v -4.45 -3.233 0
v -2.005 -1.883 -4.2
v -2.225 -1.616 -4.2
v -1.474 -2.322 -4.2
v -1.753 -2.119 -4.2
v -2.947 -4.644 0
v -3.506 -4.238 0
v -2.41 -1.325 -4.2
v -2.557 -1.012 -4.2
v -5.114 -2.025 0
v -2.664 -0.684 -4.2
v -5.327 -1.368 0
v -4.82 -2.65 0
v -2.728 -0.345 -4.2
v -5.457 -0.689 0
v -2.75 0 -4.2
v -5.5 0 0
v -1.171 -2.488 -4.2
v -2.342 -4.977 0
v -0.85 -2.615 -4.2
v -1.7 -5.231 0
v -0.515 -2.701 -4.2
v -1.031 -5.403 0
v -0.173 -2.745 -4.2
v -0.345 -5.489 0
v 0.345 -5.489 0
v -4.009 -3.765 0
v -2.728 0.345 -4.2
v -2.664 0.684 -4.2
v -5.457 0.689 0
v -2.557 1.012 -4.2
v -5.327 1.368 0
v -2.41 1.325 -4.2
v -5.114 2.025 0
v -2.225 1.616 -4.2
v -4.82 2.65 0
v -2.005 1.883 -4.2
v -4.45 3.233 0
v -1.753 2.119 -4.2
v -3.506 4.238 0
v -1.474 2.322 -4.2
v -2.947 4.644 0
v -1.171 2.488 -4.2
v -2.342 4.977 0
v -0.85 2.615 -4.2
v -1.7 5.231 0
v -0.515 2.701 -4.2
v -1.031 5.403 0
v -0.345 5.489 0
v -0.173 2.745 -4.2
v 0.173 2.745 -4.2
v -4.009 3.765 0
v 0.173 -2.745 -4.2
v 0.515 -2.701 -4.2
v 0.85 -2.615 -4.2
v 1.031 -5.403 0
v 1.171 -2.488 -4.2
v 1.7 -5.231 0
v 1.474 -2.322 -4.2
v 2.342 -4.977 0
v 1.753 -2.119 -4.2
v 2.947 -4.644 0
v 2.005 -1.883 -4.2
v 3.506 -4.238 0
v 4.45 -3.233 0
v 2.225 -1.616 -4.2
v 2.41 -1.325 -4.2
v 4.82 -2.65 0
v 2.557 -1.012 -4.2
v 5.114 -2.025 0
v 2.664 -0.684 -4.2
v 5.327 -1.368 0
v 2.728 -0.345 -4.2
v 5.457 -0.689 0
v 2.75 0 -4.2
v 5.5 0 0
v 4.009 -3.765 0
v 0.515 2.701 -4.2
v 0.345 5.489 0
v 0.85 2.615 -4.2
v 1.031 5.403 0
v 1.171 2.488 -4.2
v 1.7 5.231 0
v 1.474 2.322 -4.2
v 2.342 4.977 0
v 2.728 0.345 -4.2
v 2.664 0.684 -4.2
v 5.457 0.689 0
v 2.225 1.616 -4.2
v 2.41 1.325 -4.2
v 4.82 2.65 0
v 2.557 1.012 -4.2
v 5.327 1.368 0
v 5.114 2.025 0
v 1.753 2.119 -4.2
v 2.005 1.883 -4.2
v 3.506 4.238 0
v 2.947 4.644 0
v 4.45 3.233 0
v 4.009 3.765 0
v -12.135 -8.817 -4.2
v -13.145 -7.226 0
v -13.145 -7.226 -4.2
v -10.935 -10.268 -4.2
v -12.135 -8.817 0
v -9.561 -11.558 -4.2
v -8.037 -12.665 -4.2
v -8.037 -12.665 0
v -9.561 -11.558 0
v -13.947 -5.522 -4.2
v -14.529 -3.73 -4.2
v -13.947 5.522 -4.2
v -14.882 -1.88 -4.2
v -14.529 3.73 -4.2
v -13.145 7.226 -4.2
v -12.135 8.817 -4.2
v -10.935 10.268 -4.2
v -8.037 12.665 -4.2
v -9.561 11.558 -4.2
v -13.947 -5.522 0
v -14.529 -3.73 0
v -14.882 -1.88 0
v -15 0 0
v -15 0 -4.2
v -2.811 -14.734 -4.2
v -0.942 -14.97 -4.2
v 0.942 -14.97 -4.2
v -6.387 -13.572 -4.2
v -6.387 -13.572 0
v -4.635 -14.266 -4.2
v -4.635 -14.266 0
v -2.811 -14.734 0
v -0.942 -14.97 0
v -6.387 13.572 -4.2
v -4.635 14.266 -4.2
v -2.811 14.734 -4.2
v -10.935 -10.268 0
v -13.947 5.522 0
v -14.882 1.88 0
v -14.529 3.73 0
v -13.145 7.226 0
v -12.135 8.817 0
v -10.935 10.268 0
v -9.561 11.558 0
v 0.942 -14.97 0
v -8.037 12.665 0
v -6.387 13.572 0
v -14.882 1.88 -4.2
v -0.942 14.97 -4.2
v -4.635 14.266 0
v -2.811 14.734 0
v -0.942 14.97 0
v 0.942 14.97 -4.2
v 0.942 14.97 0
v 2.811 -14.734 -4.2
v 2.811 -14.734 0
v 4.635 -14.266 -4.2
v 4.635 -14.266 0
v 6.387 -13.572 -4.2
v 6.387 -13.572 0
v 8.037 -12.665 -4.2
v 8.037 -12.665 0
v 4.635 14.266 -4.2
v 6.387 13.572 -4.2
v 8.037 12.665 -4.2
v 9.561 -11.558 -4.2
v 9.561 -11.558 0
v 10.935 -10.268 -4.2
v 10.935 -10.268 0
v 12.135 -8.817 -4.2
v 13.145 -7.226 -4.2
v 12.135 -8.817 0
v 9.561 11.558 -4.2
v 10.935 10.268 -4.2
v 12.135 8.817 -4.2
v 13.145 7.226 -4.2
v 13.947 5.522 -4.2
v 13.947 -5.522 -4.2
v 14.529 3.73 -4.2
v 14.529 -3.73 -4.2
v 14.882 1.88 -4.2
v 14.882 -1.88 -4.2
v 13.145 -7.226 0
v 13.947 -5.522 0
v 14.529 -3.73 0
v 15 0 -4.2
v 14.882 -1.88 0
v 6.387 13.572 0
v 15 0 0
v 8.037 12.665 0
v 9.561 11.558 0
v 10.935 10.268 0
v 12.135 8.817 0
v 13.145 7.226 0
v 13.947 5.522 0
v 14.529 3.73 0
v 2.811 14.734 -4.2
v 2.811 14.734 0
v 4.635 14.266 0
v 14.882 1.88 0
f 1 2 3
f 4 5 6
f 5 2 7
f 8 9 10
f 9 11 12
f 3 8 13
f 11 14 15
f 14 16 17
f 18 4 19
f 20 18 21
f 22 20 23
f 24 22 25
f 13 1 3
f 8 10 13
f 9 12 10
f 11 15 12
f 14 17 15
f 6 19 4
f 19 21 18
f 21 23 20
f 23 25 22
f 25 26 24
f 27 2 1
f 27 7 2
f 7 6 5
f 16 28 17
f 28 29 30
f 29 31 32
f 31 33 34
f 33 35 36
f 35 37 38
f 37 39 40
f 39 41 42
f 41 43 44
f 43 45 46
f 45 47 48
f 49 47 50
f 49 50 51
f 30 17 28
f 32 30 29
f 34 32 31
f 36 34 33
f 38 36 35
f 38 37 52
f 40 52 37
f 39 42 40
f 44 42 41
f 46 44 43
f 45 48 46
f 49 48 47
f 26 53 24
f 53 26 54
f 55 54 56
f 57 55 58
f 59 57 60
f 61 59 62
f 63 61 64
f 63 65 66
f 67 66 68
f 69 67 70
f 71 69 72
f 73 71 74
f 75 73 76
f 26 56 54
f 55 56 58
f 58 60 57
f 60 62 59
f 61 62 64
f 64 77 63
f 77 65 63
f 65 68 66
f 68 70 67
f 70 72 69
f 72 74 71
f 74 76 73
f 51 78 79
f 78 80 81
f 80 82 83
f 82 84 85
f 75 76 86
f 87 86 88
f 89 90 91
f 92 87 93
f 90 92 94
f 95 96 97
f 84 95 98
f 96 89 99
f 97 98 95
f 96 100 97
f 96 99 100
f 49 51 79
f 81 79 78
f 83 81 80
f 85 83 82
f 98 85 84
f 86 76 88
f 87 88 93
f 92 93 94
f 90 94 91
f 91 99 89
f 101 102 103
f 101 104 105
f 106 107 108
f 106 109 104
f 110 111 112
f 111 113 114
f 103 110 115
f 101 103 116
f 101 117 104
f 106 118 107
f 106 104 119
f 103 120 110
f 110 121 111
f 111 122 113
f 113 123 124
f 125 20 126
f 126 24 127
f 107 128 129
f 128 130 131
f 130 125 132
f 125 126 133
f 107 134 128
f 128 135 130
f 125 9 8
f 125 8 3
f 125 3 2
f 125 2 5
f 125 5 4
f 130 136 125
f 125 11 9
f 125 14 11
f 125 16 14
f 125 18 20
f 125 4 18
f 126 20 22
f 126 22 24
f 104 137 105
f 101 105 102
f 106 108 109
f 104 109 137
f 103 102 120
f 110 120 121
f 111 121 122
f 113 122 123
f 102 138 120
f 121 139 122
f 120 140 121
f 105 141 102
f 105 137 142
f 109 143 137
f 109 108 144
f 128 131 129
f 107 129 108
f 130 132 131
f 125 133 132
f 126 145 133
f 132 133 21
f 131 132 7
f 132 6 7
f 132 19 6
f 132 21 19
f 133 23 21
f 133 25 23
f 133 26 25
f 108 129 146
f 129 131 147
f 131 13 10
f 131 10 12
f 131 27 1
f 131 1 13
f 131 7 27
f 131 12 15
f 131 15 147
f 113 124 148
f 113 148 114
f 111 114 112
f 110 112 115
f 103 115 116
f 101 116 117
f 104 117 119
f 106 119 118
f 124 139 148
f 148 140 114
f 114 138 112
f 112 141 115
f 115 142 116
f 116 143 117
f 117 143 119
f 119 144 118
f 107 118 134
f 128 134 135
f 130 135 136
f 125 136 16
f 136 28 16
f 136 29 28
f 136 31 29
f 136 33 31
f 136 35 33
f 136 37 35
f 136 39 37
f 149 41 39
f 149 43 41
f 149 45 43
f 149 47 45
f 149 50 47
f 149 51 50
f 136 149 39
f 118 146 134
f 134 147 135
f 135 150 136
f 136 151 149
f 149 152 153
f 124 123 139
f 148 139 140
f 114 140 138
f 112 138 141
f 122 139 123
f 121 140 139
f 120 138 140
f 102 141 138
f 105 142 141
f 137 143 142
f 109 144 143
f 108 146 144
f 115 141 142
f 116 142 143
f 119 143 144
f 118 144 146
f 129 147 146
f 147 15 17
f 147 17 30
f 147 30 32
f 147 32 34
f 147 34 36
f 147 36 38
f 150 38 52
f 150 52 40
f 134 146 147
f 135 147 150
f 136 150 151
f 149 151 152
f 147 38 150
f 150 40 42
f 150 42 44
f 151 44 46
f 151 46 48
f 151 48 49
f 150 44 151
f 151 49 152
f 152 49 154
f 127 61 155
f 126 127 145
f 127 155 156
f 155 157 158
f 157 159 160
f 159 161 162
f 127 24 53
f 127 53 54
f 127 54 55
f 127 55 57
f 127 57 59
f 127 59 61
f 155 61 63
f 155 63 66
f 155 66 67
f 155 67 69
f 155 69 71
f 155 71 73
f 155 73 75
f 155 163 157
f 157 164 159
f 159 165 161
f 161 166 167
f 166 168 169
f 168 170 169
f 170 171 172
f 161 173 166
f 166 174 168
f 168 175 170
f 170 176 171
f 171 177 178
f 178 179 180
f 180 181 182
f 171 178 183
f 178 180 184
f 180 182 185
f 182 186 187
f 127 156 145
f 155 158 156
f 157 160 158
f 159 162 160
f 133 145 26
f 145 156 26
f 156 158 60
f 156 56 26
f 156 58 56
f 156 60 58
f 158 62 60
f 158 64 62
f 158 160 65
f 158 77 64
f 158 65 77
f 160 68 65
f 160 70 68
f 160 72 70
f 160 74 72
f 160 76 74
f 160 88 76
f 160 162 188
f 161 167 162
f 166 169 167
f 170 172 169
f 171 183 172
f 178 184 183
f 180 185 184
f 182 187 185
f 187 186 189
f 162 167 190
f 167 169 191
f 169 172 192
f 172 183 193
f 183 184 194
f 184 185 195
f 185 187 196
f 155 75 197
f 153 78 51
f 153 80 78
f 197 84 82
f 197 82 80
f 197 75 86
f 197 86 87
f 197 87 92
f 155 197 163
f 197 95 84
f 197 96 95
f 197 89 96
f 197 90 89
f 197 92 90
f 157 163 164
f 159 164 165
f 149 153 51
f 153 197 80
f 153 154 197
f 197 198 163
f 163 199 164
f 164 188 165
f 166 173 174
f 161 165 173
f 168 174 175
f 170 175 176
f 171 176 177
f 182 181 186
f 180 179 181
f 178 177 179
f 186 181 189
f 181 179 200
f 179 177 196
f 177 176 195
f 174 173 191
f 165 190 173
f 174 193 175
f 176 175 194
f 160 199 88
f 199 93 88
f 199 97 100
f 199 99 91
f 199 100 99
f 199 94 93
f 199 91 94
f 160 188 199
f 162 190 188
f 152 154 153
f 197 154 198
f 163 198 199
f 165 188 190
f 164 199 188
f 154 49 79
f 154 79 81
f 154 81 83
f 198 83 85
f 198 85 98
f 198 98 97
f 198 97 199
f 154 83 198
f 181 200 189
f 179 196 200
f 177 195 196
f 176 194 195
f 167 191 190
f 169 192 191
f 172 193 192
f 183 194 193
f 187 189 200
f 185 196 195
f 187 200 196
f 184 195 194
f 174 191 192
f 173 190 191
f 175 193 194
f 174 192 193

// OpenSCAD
$fn = 50;

difference() {
	union() {
		translate(v = [0, 0, -4.2]) {
			cylinder(h = 4.2, r = 15.0);
		}
	}
	union() {
		translate(v = [0, 0, 0]) {
			rotate(a = [0, 0, 0]) {
				difference() {
					union() {
						translate(v = [0, 0, -7.2]) {
							cylinder(h = 7.2, r = 2.25);
						}
						translate(v = [0, 0, -4.2]) {
							cylinder(h = 4.2, r1 = 2.75, r2 = 5.5);
						}
						translate(v = [0, 0, -7.2]) {
							cylinder(h = 7.2, r = 2.75);
						}
						translate(v = [0, 0, -7.2]) {
							cylinder(h = 7.2, r = 2.25);
						}
					}
					union();
				}
			}
		}
	}
}
